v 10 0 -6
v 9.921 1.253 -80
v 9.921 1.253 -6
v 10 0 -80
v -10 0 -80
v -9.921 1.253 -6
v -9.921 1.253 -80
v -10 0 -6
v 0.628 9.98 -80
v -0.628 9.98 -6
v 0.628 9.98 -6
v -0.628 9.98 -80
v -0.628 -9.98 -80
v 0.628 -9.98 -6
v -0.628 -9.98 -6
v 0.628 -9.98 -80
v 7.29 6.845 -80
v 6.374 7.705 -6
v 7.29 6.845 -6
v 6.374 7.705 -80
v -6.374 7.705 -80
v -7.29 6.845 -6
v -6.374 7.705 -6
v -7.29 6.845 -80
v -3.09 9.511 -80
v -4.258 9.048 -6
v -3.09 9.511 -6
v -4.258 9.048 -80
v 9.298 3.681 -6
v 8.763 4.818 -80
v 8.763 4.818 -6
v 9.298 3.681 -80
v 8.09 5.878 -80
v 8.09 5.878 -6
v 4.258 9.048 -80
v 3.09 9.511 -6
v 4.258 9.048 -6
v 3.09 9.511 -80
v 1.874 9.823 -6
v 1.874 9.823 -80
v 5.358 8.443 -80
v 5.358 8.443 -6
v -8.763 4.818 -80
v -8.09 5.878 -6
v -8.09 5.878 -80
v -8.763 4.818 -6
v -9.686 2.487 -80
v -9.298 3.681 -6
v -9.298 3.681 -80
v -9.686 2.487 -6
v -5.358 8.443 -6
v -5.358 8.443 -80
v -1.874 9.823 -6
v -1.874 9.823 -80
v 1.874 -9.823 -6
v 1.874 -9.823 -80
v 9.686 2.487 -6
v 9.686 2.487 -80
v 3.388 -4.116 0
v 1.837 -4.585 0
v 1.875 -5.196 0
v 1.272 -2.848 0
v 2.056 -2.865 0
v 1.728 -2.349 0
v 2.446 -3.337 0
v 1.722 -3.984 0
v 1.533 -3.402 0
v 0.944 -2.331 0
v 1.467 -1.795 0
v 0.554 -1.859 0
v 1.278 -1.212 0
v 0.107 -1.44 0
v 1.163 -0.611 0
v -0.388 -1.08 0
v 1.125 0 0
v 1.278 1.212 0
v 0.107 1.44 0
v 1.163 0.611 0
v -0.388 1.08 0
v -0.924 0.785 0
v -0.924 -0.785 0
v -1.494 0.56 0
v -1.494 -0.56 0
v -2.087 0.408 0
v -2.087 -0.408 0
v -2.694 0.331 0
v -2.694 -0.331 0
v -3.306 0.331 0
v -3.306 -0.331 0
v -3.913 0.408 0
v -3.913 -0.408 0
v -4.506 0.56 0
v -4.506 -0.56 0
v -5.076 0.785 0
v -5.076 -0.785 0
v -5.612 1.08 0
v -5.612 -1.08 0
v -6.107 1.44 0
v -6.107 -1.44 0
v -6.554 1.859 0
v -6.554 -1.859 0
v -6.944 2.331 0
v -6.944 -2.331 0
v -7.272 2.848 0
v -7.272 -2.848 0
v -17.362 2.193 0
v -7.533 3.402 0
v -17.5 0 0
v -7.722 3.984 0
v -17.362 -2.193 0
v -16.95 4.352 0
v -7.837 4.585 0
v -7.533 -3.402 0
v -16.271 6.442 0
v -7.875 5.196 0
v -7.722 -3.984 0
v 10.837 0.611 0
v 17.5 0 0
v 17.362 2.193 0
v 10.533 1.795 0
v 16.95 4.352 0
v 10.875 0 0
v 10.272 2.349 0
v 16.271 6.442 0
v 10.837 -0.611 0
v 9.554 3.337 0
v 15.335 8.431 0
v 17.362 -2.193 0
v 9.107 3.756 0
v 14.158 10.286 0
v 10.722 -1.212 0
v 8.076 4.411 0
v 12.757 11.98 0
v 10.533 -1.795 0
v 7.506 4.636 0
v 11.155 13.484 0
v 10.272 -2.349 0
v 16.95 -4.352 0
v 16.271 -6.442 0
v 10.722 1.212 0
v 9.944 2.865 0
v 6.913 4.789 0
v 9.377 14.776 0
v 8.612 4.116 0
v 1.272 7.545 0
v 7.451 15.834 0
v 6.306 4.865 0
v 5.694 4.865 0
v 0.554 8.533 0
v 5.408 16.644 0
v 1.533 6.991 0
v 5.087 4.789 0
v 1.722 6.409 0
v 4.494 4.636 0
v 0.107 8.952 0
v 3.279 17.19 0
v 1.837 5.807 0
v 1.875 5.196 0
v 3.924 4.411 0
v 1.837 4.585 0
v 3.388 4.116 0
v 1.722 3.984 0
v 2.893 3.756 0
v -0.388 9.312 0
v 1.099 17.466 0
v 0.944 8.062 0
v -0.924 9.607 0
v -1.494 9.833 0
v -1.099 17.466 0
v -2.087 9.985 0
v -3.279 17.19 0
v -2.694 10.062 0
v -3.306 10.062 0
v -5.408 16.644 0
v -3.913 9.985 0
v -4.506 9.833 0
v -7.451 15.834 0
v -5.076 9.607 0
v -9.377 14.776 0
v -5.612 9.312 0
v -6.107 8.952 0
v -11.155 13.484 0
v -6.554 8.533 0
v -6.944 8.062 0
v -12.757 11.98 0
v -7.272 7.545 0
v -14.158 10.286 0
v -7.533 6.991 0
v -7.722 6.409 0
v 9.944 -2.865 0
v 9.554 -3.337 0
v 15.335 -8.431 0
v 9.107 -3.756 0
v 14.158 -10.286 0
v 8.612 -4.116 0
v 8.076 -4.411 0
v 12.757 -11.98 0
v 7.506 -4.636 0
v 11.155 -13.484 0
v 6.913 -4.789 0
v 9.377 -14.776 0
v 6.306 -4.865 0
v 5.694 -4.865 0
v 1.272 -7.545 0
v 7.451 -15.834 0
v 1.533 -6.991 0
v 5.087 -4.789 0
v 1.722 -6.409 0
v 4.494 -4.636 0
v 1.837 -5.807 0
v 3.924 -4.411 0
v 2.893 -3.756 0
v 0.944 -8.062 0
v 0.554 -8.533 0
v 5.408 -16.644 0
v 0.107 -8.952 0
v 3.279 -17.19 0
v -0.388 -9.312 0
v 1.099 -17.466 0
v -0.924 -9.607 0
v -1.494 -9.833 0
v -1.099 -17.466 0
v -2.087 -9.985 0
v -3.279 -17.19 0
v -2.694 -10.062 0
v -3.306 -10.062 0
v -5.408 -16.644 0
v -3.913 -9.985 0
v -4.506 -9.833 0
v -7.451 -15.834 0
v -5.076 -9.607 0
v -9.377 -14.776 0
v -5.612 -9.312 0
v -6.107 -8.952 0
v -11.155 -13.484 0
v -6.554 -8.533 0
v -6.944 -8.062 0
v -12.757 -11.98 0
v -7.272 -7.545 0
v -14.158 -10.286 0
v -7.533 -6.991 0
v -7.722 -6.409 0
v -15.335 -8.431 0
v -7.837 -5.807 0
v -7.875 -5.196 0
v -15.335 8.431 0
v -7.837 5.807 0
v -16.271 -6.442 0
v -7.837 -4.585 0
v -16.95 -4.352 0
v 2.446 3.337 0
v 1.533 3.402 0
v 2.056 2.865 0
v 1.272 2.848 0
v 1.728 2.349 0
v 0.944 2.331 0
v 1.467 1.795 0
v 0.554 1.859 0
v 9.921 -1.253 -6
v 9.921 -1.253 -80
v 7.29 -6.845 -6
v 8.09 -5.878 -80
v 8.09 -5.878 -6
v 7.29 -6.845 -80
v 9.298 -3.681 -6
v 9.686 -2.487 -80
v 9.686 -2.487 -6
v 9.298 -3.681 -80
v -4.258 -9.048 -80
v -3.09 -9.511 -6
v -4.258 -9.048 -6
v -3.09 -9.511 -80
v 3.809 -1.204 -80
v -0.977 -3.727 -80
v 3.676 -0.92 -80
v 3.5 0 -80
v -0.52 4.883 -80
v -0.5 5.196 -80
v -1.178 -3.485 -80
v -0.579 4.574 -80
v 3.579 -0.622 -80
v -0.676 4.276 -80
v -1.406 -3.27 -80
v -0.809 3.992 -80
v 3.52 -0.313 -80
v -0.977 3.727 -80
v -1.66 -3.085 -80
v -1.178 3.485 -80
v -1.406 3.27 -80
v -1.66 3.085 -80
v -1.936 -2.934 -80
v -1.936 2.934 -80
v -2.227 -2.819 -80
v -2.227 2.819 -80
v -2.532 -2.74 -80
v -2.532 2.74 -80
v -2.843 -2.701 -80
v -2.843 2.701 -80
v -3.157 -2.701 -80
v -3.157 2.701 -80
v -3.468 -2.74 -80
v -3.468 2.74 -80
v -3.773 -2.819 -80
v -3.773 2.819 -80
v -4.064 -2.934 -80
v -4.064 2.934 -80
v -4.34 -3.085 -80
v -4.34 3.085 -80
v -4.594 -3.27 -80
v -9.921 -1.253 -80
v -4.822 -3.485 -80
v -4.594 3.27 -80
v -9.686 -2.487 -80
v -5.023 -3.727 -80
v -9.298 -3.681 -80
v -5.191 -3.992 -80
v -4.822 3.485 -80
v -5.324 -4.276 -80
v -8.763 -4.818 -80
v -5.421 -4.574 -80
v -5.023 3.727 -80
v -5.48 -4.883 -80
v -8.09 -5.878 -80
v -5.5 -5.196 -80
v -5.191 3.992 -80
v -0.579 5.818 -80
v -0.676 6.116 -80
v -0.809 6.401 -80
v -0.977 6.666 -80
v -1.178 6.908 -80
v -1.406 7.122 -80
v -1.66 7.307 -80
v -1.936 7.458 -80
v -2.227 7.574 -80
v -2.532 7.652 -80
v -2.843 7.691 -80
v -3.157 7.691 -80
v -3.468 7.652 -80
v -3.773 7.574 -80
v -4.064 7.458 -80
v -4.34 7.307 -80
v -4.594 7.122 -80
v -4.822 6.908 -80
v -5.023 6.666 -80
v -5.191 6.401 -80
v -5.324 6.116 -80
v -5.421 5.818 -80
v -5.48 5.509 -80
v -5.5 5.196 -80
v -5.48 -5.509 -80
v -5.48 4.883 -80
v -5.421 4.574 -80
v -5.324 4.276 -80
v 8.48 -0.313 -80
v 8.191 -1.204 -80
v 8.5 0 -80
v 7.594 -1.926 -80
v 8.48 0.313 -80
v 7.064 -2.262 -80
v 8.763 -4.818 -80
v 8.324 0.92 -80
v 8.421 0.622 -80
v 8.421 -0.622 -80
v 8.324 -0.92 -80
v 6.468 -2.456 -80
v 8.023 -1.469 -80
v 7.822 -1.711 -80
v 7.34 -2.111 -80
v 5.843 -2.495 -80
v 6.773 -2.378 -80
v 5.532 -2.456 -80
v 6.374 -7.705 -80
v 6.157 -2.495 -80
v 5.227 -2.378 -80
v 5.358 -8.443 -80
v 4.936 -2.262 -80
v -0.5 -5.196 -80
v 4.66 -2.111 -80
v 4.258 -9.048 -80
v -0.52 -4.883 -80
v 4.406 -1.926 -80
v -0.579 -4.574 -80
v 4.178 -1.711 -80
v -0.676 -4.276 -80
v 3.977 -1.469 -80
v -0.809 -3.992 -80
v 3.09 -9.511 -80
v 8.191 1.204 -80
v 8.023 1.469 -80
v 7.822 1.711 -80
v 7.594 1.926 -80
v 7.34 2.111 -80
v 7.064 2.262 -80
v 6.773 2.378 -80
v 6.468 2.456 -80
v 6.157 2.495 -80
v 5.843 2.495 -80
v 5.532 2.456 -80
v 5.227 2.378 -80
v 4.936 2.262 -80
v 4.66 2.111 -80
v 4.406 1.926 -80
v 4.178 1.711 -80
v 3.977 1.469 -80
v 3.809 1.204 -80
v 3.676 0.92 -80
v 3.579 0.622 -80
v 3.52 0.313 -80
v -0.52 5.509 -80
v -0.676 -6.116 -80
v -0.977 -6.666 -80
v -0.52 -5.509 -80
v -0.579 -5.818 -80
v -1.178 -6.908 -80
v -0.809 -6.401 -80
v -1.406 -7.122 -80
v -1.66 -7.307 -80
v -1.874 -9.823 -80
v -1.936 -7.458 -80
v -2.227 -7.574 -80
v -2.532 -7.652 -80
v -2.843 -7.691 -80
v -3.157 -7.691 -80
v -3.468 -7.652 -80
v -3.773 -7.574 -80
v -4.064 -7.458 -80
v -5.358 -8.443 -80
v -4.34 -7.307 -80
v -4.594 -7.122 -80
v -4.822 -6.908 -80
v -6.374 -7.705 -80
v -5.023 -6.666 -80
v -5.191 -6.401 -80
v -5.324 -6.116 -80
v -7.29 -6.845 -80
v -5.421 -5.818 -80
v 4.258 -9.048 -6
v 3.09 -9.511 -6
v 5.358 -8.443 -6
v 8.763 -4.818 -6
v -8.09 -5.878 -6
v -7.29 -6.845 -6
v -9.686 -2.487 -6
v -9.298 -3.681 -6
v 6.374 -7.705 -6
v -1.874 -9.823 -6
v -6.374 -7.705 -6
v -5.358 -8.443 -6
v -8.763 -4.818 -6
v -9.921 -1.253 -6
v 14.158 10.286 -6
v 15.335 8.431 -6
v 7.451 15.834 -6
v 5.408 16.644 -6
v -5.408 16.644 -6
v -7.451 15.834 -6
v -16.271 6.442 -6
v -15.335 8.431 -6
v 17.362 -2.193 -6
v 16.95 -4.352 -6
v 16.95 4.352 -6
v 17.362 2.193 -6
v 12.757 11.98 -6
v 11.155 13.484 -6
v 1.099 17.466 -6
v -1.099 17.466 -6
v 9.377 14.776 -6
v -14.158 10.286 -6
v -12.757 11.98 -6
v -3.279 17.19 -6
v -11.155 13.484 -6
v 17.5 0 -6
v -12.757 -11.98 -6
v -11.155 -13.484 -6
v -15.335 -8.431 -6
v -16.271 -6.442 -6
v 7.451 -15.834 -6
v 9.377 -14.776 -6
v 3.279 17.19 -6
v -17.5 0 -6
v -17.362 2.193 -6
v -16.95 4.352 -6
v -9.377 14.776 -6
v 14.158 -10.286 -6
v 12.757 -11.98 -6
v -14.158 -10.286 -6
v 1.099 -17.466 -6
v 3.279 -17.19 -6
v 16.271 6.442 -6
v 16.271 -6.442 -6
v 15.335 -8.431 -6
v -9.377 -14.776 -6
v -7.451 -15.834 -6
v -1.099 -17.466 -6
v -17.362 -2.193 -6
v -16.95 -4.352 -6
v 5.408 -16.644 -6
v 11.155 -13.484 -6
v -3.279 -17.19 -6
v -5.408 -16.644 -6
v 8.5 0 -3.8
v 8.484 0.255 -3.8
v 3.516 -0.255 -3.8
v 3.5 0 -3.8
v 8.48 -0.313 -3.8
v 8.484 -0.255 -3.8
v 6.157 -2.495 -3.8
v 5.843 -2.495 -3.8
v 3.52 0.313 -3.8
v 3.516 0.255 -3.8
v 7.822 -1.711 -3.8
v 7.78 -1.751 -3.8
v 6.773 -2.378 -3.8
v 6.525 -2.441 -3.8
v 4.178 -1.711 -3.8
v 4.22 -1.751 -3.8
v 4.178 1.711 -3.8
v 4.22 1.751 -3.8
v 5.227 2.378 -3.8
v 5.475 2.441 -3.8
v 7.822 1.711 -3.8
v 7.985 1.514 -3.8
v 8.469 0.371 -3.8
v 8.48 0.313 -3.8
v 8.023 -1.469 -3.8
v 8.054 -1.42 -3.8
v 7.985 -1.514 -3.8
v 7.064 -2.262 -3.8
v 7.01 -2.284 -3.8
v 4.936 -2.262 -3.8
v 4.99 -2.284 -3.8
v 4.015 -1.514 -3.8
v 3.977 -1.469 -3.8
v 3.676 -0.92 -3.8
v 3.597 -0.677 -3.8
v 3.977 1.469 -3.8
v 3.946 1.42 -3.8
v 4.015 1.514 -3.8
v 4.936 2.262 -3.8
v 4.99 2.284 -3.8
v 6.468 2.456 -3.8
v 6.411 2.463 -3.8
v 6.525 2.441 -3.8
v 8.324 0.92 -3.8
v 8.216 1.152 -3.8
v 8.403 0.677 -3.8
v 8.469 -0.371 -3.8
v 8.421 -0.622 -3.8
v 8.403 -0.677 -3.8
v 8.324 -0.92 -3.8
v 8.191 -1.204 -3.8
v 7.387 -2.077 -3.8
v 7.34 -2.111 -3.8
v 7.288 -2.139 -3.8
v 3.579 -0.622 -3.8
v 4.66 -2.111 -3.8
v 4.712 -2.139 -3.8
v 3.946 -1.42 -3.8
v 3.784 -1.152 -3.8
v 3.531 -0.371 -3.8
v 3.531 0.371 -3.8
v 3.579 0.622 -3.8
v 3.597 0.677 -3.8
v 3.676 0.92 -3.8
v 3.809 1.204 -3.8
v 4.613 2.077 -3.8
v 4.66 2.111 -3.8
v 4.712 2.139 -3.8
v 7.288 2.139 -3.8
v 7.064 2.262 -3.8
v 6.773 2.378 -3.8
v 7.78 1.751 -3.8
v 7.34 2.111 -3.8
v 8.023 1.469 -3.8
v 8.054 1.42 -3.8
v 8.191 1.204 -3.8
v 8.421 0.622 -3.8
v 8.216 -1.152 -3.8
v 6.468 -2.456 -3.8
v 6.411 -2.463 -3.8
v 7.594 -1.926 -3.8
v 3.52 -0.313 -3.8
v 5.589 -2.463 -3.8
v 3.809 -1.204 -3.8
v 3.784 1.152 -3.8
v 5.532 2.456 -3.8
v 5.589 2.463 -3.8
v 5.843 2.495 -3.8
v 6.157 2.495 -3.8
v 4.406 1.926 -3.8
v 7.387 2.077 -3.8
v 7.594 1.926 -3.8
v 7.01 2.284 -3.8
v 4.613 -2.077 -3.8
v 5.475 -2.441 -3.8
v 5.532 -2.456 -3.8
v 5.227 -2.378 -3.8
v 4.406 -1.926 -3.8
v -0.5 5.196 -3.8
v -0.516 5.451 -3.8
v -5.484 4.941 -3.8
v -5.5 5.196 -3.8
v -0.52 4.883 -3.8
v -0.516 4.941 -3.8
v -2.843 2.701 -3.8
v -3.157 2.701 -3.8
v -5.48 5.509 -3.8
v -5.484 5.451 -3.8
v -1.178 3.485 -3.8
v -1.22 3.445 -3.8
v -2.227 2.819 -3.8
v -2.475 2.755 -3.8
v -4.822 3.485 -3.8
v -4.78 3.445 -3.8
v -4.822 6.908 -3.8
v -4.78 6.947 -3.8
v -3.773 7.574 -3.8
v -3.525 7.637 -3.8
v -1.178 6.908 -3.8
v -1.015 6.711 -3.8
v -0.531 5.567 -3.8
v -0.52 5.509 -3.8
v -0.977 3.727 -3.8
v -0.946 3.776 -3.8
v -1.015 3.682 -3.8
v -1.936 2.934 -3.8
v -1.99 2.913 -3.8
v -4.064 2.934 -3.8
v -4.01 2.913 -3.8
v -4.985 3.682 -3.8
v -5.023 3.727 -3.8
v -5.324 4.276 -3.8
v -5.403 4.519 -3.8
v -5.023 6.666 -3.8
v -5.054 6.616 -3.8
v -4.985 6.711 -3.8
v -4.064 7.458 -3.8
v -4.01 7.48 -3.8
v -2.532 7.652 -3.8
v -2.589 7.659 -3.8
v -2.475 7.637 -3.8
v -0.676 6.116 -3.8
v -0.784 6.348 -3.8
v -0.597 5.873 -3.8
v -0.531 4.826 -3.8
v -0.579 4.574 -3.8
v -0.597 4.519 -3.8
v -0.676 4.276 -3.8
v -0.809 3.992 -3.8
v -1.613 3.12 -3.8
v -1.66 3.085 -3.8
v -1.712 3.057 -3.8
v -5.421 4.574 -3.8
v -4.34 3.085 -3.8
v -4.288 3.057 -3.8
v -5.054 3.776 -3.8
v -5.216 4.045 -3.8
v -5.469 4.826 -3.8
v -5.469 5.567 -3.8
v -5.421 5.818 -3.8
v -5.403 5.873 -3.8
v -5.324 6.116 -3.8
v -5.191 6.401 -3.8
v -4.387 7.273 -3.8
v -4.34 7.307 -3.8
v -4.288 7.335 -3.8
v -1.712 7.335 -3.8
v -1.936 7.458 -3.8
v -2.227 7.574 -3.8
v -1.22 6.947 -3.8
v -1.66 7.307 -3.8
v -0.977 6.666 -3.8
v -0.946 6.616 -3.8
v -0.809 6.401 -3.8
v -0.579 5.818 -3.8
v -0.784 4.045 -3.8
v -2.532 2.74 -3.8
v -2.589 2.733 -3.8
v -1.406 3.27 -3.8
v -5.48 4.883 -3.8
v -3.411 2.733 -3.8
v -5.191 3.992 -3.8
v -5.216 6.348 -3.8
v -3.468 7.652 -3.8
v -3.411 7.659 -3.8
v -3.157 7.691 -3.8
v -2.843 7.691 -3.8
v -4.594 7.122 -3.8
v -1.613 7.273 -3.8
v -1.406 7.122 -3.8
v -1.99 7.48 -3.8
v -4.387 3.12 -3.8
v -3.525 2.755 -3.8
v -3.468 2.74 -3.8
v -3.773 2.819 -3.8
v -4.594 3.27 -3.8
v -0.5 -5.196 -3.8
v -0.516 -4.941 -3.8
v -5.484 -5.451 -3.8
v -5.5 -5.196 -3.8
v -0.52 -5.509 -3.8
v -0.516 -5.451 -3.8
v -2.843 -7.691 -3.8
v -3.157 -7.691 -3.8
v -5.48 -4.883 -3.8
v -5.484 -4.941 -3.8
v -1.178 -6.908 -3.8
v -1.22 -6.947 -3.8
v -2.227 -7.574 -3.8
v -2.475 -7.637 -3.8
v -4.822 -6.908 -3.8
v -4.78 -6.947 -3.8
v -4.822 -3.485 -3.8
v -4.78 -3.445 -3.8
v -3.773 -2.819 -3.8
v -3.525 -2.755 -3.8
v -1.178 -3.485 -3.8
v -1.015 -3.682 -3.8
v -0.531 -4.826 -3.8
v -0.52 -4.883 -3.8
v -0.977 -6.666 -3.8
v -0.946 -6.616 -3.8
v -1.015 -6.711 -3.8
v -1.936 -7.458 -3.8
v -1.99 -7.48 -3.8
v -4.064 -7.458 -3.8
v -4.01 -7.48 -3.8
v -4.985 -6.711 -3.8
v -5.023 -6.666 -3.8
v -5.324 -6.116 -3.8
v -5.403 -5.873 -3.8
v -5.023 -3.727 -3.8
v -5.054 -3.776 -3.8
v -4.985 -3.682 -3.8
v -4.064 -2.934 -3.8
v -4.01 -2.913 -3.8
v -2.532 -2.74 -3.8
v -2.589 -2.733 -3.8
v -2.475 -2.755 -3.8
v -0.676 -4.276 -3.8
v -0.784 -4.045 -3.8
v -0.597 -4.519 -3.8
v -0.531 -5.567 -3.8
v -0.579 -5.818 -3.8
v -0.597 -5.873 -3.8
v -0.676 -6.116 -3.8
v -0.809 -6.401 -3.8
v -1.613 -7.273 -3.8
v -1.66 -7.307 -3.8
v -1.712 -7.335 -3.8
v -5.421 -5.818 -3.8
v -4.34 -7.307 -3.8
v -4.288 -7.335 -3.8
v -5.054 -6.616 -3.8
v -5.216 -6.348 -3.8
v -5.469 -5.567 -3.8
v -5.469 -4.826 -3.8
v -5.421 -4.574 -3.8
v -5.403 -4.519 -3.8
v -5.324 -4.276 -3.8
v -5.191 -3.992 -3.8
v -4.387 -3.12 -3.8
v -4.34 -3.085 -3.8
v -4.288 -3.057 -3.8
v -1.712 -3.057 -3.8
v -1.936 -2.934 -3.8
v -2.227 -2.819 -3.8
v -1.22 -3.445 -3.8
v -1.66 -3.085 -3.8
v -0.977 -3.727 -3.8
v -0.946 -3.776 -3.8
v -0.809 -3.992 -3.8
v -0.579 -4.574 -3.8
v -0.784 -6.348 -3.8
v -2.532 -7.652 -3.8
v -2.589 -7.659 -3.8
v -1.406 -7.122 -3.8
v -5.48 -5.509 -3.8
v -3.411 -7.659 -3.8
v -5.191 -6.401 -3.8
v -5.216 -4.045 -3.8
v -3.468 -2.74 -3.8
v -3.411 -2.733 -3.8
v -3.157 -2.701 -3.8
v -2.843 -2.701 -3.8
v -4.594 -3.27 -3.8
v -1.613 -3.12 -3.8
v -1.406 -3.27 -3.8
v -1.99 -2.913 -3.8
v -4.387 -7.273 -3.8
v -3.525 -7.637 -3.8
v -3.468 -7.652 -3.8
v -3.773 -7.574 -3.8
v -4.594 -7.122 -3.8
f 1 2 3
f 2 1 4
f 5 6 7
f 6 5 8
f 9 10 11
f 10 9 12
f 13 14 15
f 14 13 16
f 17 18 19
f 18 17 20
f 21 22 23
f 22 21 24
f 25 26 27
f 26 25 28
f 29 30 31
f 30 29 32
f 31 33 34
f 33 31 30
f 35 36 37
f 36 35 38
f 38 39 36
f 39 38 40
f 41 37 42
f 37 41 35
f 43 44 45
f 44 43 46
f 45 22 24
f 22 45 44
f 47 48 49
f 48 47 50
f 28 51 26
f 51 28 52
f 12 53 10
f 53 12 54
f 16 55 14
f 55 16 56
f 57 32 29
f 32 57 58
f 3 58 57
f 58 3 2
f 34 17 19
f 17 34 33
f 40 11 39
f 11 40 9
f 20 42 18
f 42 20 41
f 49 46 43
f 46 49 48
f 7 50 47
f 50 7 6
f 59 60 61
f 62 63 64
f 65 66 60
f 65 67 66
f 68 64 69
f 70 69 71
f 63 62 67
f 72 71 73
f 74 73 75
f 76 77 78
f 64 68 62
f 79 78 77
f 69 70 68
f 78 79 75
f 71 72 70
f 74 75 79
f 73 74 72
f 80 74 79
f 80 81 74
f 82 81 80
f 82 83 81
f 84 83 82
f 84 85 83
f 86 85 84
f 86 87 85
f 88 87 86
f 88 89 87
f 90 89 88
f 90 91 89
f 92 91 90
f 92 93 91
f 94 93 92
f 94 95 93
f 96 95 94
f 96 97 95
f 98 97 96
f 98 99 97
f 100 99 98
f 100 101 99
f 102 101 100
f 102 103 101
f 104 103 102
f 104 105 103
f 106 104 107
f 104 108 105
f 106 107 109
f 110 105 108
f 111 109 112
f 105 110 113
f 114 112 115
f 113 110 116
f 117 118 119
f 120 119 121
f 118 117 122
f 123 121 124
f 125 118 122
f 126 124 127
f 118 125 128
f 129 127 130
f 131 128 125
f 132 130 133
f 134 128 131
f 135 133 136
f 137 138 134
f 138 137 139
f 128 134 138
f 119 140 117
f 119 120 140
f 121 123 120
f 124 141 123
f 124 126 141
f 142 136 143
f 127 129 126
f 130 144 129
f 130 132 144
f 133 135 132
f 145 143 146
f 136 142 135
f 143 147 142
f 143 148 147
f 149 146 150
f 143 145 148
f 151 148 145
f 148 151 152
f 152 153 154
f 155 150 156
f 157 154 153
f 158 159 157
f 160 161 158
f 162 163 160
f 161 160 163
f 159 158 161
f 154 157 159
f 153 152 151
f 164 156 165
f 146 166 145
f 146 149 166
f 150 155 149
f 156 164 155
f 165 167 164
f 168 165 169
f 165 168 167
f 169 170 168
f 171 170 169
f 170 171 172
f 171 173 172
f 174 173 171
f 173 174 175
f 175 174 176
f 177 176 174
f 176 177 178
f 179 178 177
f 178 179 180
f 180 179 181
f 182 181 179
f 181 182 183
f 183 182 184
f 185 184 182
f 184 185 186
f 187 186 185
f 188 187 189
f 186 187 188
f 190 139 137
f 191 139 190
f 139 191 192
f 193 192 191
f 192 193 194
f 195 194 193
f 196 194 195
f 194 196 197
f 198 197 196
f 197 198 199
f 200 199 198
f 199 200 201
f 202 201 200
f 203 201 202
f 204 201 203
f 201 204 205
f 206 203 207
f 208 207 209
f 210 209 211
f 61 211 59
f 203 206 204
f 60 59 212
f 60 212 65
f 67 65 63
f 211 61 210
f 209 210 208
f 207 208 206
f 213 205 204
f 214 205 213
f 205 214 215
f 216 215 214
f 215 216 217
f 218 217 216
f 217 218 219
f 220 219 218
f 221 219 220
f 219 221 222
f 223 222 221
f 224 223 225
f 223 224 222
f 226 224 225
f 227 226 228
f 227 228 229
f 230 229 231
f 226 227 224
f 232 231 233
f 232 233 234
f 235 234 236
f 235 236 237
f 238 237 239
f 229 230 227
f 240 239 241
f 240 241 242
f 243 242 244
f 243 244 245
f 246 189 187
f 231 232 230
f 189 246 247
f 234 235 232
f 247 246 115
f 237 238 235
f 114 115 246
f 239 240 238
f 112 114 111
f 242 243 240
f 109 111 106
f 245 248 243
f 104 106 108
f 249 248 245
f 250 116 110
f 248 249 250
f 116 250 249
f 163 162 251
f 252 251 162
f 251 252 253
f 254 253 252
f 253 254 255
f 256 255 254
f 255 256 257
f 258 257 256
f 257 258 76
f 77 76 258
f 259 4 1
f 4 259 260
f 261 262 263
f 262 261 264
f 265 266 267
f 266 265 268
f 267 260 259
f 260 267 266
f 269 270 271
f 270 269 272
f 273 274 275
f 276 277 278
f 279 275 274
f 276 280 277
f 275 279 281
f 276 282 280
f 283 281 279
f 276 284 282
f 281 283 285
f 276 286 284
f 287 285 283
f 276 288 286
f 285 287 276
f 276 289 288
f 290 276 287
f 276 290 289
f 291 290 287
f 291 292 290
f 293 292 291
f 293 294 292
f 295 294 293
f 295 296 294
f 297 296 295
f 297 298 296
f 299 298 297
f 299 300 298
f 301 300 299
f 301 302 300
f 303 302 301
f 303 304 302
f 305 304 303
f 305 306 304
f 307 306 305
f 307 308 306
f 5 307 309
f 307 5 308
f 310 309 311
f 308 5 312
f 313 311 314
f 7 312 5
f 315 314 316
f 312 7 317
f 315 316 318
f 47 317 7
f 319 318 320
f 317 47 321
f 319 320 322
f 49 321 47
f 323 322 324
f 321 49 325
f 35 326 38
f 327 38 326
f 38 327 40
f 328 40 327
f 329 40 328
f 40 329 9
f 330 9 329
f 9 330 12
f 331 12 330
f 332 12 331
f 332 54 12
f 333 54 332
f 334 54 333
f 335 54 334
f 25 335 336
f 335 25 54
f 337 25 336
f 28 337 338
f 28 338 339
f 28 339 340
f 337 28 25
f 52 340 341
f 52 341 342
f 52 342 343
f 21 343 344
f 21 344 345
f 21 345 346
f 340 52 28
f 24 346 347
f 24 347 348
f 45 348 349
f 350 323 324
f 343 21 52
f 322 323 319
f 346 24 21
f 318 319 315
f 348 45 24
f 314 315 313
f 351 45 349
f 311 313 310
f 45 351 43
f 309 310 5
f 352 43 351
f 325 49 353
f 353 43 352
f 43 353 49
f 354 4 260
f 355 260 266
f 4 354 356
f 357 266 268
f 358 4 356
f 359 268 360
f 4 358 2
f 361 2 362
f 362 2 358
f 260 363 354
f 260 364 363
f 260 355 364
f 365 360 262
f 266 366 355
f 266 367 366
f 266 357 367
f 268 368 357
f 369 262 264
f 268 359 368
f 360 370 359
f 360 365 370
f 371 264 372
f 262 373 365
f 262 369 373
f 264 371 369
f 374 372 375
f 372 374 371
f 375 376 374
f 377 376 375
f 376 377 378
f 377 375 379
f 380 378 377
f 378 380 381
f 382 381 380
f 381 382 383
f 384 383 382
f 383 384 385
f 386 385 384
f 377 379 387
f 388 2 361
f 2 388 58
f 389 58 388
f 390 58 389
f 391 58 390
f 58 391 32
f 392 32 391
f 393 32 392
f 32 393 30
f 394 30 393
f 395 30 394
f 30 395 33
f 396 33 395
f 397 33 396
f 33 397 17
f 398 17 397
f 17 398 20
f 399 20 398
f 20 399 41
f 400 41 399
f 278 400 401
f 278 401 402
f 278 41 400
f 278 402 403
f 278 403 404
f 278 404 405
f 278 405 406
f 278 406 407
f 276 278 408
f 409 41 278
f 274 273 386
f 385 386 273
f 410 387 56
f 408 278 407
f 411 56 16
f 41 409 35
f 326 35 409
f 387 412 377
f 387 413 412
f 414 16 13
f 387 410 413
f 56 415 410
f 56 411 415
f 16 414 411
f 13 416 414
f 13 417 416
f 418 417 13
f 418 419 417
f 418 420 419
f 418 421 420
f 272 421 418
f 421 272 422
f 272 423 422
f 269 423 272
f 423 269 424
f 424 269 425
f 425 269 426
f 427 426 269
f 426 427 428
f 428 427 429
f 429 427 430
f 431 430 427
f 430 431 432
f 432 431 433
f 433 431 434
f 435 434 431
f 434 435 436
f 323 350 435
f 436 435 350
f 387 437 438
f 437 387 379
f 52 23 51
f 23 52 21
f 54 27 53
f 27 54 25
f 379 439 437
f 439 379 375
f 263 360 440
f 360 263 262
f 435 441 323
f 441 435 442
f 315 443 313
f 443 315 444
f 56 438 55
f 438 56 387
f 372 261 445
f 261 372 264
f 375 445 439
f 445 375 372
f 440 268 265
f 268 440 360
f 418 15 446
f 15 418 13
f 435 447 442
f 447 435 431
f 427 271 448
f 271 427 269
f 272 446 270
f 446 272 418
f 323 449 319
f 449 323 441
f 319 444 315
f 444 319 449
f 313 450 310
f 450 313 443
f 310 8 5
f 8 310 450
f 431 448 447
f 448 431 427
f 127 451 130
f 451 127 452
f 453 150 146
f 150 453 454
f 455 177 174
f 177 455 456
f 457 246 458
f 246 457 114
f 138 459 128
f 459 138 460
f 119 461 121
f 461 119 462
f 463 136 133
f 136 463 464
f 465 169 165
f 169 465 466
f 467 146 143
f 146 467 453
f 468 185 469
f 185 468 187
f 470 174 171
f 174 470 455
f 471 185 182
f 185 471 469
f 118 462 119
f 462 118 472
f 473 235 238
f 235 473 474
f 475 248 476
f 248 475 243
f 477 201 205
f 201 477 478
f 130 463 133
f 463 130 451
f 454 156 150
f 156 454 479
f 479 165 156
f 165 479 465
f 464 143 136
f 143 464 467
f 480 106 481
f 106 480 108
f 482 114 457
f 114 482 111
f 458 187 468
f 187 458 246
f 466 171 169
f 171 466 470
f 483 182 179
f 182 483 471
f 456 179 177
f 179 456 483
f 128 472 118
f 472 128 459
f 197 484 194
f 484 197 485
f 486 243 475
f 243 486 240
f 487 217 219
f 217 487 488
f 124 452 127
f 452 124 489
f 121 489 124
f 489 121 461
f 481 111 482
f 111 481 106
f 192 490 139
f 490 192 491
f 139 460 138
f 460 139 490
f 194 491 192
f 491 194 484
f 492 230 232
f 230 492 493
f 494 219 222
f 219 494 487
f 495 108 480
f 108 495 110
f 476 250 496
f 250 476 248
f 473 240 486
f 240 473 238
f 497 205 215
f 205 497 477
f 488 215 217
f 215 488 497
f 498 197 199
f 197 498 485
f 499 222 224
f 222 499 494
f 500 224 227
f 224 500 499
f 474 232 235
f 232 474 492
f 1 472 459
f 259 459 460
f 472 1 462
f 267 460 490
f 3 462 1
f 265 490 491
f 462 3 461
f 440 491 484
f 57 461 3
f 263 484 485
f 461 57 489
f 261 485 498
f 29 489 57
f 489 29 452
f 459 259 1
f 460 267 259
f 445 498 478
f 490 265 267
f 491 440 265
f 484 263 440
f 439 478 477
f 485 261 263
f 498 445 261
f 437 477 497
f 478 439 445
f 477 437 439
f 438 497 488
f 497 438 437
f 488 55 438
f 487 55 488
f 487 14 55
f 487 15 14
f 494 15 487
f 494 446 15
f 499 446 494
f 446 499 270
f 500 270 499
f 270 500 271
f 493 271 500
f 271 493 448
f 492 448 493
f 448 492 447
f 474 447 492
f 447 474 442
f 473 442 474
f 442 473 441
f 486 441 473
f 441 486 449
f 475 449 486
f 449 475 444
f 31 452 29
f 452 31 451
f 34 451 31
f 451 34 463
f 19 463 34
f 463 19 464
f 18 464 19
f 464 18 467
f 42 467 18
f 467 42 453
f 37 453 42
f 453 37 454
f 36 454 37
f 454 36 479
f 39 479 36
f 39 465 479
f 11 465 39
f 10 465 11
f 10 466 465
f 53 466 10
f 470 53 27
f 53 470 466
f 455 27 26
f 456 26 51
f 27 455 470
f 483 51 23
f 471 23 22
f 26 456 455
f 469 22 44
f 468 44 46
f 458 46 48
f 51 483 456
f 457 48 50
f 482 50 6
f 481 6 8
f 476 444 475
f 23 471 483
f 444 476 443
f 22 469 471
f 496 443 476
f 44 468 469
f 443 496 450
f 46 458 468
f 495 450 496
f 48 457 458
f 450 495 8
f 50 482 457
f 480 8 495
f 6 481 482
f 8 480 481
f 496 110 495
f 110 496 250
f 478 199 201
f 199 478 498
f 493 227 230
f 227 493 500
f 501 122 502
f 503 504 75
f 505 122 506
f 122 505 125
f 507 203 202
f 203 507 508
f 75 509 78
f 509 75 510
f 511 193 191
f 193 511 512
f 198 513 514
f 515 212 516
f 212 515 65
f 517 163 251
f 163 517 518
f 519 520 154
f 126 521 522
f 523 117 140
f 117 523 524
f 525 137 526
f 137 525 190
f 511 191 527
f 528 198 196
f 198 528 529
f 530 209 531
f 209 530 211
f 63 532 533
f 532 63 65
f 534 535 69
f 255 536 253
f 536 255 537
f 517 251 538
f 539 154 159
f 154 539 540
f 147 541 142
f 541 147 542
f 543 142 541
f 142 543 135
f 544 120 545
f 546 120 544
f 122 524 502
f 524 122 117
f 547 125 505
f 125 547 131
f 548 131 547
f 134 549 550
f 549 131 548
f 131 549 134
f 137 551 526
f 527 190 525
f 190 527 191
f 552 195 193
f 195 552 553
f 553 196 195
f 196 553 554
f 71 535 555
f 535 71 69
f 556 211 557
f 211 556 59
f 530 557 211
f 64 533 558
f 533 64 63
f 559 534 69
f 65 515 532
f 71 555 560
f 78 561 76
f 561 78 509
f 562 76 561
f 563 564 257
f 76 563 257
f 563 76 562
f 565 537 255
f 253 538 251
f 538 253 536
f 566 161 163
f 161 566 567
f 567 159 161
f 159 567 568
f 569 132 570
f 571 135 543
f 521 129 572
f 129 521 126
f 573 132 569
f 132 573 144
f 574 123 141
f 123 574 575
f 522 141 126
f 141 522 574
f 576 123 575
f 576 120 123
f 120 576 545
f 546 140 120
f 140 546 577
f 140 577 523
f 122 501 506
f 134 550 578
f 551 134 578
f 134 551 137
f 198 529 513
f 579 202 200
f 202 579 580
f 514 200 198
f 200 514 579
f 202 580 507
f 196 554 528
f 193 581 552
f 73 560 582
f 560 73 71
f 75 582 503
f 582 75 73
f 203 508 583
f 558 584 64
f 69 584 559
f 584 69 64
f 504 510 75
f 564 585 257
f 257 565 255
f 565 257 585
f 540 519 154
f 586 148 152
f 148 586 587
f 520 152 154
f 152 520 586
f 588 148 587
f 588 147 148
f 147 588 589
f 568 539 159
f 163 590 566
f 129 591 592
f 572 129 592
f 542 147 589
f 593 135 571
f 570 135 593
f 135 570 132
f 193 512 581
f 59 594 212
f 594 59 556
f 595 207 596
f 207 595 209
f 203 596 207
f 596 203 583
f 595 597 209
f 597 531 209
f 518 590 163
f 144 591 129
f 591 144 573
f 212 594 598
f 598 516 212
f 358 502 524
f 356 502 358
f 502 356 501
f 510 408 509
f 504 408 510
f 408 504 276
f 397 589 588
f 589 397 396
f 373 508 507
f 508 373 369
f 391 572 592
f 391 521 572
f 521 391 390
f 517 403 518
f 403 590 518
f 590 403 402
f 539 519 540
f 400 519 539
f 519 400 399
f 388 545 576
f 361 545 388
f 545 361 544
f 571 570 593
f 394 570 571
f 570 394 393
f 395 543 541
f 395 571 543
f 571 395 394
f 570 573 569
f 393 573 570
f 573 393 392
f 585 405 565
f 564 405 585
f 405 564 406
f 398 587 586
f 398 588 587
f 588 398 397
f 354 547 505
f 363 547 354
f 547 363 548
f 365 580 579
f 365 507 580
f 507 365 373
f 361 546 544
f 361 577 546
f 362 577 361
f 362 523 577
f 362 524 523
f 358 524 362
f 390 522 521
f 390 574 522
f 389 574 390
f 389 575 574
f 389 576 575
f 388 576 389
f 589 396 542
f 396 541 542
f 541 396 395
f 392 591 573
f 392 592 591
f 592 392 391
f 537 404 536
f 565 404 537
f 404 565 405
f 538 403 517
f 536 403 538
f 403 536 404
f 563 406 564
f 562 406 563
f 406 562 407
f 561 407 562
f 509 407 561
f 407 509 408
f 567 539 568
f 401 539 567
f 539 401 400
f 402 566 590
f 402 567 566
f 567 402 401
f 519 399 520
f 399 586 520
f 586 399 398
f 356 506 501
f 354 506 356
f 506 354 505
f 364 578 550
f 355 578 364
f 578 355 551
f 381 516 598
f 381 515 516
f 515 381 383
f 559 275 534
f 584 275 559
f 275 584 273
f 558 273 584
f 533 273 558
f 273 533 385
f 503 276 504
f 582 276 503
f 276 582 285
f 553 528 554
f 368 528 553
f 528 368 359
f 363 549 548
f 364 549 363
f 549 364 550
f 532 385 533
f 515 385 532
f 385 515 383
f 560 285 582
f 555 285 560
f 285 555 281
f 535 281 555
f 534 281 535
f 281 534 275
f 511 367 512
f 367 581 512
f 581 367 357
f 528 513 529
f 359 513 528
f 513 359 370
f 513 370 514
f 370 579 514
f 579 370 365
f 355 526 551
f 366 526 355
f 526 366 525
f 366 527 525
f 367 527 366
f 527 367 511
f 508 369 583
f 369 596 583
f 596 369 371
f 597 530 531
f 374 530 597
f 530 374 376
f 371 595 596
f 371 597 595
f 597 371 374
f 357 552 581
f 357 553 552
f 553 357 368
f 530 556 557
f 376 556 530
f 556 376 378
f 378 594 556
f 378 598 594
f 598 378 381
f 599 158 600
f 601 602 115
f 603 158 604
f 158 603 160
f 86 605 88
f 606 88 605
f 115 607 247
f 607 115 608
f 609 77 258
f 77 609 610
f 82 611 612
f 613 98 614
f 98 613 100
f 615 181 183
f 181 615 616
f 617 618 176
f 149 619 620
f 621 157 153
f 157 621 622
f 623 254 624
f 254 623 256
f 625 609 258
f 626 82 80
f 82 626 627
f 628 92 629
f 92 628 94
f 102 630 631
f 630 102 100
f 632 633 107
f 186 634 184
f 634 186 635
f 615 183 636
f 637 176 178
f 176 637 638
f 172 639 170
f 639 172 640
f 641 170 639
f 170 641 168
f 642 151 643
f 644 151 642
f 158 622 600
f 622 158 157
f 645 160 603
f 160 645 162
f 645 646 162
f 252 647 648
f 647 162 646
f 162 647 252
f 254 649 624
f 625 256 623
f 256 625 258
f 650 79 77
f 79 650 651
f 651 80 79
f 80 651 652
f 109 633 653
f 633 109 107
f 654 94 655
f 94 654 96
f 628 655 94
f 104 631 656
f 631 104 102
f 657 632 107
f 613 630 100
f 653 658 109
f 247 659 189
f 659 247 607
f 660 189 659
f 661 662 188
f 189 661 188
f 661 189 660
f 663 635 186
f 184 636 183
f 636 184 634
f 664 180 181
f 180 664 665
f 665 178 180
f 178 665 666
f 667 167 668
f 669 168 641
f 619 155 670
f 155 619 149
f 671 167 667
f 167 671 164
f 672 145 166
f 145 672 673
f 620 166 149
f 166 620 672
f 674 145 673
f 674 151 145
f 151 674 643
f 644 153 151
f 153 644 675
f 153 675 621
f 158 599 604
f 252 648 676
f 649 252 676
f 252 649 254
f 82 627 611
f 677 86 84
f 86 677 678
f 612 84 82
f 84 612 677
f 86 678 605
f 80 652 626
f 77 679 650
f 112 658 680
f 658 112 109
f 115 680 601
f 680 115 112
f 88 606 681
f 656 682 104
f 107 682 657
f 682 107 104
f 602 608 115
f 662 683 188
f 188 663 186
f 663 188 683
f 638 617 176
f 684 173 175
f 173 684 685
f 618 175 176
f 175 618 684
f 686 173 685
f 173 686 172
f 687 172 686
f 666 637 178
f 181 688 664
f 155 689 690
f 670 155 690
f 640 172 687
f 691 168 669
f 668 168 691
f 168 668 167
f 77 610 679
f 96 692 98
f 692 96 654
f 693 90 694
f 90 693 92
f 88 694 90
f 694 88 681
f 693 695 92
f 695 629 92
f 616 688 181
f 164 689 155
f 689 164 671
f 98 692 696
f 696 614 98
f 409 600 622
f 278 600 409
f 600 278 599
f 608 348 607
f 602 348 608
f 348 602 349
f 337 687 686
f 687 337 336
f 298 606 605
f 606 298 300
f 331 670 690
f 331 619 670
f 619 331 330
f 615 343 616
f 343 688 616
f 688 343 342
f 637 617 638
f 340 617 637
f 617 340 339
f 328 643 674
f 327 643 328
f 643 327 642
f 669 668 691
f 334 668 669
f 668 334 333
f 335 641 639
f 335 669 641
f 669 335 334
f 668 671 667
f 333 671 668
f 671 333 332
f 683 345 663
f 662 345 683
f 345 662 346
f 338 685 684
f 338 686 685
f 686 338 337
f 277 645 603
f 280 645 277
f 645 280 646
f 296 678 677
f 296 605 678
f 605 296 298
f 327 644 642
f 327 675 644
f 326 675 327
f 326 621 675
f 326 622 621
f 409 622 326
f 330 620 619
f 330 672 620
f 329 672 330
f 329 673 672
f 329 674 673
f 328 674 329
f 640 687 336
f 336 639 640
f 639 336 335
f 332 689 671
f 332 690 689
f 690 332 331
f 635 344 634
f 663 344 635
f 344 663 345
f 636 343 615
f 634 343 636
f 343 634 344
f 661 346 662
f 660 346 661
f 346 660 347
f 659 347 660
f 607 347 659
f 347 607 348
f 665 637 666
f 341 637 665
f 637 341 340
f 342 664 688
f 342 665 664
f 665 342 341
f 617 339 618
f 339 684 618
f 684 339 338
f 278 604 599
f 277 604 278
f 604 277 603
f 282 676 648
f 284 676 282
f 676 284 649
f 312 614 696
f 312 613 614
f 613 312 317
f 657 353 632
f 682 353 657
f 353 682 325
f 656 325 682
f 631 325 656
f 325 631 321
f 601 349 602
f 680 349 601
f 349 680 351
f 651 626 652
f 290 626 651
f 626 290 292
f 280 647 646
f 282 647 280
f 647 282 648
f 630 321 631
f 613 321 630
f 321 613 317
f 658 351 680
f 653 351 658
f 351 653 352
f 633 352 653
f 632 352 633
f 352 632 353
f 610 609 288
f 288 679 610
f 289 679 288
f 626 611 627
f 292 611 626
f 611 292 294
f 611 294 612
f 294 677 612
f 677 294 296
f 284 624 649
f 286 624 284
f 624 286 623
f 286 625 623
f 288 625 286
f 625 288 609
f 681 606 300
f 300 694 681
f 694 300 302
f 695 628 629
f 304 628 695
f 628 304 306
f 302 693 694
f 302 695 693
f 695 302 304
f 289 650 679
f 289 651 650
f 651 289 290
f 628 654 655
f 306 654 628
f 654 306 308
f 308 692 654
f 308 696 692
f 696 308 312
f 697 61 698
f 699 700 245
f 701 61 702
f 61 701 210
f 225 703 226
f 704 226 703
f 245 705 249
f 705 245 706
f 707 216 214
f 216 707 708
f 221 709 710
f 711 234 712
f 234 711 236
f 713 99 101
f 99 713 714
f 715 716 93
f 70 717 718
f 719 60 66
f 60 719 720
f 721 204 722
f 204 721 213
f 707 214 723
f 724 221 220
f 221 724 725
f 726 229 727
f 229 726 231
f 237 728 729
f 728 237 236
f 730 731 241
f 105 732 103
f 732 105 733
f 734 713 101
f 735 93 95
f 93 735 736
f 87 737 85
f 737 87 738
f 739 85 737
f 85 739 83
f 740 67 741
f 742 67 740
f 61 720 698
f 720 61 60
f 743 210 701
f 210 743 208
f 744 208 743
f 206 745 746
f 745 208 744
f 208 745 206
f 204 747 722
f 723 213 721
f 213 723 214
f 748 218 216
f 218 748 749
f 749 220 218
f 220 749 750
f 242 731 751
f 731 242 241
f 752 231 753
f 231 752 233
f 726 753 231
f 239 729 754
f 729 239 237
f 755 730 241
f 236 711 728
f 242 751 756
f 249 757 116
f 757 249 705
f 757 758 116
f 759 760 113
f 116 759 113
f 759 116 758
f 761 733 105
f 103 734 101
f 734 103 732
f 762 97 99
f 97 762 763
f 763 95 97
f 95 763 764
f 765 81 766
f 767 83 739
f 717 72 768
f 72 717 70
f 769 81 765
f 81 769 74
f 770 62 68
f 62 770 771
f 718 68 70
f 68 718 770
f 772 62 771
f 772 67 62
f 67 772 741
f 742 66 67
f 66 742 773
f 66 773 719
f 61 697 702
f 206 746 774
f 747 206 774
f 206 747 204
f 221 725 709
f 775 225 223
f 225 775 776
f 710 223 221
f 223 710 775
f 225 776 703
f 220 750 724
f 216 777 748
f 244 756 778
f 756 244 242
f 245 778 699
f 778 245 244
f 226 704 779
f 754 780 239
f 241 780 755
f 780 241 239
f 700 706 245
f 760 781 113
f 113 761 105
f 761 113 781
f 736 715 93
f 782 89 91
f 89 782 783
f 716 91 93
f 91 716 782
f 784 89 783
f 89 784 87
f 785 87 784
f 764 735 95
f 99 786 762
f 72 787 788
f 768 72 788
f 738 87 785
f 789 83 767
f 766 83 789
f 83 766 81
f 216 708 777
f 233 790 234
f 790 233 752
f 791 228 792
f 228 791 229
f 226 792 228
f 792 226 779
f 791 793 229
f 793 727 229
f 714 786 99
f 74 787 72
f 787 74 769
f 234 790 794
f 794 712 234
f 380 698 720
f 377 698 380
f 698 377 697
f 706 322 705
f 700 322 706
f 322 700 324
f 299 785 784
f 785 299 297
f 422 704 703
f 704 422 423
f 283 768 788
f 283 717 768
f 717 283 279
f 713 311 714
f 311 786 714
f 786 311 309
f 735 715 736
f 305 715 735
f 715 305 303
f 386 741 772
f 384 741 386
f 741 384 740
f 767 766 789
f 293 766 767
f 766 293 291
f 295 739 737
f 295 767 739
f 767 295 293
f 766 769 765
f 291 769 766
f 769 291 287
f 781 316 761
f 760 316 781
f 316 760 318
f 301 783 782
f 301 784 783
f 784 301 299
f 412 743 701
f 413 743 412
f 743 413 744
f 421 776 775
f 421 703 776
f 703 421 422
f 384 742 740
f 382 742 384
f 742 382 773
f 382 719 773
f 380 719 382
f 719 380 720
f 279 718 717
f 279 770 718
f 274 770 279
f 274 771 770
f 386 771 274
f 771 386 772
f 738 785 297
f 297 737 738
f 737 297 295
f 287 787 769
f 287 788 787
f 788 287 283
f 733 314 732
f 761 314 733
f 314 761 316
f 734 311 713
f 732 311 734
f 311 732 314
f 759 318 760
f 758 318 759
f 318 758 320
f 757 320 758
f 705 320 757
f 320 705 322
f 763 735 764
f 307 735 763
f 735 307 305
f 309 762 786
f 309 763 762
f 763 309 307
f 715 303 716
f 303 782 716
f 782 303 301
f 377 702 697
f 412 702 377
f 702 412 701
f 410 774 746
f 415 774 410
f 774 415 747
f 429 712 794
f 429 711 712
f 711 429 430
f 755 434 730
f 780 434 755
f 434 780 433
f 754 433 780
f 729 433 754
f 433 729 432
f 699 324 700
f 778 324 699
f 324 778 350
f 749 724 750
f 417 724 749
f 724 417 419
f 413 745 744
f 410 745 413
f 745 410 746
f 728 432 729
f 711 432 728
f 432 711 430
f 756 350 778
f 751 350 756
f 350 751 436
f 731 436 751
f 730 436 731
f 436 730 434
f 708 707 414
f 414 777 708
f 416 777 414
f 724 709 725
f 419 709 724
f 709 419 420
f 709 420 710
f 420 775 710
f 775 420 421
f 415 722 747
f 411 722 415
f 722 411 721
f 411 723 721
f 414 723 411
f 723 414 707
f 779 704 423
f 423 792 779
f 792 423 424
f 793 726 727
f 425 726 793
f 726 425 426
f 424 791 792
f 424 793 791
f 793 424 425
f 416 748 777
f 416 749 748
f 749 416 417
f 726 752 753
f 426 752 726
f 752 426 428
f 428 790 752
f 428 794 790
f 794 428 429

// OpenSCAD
$fn = 50;


difference() {
	union() {
		translate(v = [0, 0, -80.0000000000]) {
			cylinder(h = 80, r = 10.0000000000);
		}
		translate(v = [0, 0, -6.0000000000]) {
			cylinder(h = 6, r = 17.5000000000);
		}
	}
	union() {
		translate(v = [6.0000000000, 0.0000000000, 0]) {
			rotate(a = [0, 0, 0]) {
				difference() {
					union() {
						#translate(v = [0, 0, -4.2000000000]) {
							cylinder(h = 4.2000000000, r = 10.0000000000, r1 = 2.2500000000, r2 = 4.8750000000);
						}
						#translate(v = [0, 0, -80.0000000000]) {
							cylinder(h = 80, r = 2.2500000000);
						}
						#translate(v = [0, 0, -80.0000000000]) {
							cylinder(h = 80, r = 2.5000000000);
						}
						#translate(v = [0, 0, -80.0000000000]) {
							cylinder(h = 80, r = 2.2500000000);
						}
					}
					union();
				}
			}
		}
		translate(v = [-3.0000000000, 5.1961524227, 0]) {
			rotate(a = [0, 0, 0]) {
				difference() {
					union() {
						#translate(v = [0, 0, -4.2000000000]) {
							cylinder(h = 4.2000000000, r = 10.0000000000, r1 = 2.2500000000, r2 = 4.8750000000);
						}
						#translate(v = [0, 0, -80.0000000000]) {
							cylinder(h = 80, r = 2.2500000000);
						}
						#translate(v = [0, 0, -80.0000000000]) {
							cylinder(h = 80, r = 2.5000000000);
						}
						#translate(v = [0, 0, -80.0000000000]) {
							cylinder(h = 80, r = 2.2500000000);
						}
					}
					union();
				}
			}
		}
		translate(v = [-3.0000000000, -5.1961524227, 0]) {
			rotate(a = [0, 0, 0]) {
				difference() {
					union() {
						#translate(v = [0, 0, -4.2000000000]) {
							cylinder(h = 4.2000000000, r = 10.0000000000, r1 = 2.2500000000, r2 = 4.8750000000);
						}
						#translate(v = [0, 0, -80.0000000000]) {
							cylinder(h = 80, r = 2.2500000000);
						}
						#translate(v = [0, 0, -80.0000000000]) {
							cylinder(h = 80, r = 2.5000000000);
						}
						#translate(v = [0, 0, -80.0000000000]) {
							cylinder(h = 80, r = 2.2500000000);
						}
					}
					union();
				}
			}
		}
	}
}
